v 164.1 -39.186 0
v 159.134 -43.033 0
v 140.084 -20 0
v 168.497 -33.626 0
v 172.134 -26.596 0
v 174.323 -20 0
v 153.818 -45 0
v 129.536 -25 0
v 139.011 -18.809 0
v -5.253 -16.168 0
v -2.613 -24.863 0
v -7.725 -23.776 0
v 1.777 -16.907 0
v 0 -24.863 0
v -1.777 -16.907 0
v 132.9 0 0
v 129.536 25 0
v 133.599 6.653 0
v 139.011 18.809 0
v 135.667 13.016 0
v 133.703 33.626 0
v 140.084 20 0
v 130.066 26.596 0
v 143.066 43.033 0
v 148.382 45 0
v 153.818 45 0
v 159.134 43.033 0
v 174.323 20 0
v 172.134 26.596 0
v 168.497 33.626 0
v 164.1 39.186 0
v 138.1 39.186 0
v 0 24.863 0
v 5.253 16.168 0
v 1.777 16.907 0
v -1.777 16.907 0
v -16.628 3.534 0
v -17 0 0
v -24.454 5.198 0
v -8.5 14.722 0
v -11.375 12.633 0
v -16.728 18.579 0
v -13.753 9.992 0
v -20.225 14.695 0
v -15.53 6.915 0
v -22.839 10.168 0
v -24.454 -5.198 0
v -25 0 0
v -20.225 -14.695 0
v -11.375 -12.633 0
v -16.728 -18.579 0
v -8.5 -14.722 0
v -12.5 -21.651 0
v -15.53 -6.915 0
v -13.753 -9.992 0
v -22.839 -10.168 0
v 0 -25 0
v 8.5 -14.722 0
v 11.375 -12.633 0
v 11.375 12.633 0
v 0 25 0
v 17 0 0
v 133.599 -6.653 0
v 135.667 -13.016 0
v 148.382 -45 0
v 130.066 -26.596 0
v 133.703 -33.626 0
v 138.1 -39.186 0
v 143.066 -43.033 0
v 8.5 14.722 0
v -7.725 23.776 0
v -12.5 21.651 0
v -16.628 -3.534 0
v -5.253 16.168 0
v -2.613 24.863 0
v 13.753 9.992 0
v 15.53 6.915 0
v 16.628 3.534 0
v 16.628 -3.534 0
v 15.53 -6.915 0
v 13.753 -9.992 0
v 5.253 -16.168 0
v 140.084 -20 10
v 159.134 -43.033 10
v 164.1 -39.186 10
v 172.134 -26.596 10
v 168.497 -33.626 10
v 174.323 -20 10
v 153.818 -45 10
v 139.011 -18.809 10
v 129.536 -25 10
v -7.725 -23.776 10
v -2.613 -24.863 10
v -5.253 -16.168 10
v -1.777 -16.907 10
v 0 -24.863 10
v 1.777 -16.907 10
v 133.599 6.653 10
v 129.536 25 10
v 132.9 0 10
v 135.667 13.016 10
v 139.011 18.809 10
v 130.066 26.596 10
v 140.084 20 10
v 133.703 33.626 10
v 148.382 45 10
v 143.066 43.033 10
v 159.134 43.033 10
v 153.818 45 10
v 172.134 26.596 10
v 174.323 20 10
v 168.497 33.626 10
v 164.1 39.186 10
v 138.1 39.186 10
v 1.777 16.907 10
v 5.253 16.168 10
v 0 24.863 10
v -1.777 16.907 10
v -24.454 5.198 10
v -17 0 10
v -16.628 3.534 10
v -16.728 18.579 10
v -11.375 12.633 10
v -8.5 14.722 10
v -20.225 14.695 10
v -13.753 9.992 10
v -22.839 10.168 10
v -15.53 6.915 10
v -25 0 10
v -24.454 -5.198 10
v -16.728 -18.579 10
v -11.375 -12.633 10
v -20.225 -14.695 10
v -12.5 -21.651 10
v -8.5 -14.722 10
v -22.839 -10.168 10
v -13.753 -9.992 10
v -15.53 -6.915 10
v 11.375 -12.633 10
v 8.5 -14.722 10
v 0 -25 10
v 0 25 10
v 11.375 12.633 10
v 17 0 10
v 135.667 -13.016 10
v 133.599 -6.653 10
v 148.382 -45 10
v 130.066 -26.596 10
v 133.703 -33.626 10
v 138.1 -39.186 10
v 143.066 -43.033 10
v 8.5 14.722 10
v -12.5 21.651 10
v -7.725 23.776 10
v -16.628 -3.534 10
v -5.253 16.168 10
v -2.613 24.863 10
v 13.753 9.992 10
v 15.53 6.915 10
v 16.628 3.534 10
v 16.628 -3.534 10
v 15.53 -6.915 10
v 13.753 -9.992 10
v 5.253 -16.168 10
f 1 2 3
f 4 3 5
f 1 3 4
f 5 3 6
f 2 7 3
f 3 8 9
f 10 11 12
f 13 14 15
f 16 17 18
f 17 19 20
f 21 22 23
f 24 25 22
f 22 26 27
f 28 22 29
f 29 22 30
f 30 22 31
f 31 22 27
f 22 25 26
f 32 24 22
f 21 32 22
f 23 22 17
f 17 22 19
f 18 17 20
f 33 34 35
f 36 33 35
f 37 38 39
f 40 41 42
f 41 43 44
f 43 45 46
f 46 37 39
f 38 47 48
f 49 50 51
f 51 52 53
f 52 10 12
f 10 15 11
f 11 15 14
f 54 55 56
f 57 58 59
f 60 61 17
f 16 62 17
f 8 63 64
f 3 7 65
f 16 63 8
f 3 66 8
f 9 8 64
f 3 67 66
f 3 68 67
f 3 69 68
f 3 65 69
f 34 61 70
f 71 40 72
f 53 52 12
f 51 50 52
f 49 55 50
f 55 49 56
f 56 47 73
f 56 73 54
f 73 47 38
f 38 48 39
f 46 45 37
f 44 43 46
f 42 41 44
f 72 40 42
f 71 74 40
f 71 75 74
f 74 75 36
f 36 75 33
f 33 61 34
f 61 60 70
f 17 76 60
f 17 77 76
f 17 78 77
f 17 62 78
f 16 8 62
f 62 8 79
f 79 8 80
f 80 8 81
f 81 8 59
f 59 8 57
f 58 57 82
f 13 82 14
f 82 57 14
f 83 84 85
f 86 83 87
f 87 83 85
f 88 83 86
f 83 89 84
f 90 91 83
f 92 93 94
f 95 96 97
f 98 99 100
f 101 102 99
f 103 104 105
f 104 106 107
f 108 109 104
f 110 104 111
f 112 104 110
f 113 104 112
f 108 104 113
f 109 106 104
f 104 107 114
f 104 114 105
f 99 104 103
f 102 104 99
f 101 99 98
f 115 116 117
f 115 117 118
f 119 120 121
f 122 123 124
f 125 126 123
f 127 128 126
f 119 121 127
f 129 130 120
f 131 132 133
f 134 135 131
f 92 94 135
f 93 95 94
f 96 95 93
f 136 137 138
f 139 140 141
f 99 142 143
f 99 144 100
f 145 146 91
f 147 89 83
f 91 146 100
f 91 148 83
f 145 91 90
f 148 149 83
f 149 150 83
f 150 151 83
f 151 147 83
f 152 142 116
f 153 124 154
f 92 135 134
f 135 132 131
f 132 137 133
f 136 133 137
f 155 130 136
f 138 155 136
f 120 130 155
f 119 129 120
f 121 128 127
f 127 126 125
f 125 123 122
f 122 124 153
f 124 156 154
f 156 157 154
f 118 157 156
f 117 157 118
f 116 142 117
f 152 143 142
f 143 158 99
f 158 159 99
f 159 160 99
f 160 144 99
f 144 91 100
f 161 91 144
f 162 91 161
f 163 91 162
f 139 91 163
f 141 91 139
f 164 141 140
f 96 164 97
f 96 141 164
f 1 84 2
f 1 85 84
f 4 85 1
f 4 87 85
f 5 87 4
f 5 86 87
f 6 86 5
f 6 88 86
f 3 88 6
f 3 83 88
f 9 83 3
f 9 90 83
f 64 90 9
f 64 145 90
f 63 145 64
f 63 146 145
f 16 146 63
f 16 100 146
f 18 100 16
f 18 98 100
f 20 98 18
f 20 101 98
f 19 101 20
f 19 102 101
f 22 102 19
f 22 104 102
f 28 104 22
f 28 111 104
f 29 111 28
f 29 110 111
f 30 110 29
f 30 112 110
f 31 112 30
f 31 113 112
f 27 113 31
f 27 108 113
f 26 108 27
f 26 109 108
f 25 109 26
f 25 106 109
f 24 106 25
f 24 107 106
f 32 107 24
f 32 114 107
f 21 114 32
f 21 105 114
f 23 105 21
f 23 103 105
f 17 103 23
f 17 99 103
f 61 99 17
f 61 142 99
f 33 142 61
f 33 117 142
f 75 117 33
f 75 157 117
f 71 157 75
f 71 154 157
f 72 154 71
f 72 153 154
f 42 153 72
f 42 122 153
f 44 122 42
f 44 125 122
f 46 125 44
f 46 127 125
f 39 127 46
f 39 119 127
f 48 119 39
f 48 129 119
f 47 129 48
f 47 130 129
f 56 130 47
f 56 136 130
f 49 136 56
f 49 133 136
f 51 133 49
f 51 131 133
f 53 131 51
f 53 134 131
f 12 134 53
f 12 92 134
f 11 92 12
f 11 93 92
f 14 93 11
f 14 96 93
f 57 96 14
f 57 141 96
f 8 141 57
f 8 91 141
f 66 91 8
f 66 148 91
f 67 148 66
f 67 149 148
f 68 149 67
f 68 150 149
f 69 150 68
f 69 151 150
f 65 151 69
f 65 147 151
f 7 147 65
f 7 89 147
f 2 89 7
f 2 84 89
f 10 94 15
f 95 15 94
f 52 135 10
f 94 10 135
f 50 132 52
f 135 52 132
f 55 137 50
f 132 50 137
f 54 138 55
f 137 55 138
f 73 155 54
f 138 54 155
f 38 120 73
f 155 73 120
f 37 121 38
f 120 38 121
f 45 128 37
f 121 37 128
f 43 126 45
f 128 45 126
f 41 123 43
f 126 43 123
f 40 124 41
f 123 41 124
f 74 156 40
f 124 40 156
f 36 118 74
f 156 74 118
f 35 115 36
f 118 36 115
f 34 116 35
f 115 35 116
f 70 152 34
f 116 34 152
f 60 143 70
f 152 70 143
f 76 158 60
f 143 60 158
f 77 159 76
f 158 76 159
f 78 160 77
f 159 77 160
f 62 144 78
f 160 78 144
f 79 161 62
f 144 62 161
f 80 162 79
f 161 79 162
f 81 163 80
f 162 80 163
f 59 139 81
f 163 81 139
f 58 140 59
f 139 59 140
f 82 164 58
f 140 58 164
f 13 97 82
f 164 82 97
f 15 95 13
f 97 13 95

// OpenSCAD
module special_hole() {
    intersection() {
    union() {
        circle(32);
        translate([0,-20]) square([50,40]);
    }
    #translate([-100,-20]) square([200,40]);
    }
}

linear_extrude(10) {
    difference() {
        union() {
            circle(25);
            translate([0,-25])
                square([164.9-13.8, 50]);
            translate([164.9-13.8,0])
            resize([52,90])
                circle(26);
        }
        circle(17);
        translate([164.9,0])           special_hole();
    }
}
